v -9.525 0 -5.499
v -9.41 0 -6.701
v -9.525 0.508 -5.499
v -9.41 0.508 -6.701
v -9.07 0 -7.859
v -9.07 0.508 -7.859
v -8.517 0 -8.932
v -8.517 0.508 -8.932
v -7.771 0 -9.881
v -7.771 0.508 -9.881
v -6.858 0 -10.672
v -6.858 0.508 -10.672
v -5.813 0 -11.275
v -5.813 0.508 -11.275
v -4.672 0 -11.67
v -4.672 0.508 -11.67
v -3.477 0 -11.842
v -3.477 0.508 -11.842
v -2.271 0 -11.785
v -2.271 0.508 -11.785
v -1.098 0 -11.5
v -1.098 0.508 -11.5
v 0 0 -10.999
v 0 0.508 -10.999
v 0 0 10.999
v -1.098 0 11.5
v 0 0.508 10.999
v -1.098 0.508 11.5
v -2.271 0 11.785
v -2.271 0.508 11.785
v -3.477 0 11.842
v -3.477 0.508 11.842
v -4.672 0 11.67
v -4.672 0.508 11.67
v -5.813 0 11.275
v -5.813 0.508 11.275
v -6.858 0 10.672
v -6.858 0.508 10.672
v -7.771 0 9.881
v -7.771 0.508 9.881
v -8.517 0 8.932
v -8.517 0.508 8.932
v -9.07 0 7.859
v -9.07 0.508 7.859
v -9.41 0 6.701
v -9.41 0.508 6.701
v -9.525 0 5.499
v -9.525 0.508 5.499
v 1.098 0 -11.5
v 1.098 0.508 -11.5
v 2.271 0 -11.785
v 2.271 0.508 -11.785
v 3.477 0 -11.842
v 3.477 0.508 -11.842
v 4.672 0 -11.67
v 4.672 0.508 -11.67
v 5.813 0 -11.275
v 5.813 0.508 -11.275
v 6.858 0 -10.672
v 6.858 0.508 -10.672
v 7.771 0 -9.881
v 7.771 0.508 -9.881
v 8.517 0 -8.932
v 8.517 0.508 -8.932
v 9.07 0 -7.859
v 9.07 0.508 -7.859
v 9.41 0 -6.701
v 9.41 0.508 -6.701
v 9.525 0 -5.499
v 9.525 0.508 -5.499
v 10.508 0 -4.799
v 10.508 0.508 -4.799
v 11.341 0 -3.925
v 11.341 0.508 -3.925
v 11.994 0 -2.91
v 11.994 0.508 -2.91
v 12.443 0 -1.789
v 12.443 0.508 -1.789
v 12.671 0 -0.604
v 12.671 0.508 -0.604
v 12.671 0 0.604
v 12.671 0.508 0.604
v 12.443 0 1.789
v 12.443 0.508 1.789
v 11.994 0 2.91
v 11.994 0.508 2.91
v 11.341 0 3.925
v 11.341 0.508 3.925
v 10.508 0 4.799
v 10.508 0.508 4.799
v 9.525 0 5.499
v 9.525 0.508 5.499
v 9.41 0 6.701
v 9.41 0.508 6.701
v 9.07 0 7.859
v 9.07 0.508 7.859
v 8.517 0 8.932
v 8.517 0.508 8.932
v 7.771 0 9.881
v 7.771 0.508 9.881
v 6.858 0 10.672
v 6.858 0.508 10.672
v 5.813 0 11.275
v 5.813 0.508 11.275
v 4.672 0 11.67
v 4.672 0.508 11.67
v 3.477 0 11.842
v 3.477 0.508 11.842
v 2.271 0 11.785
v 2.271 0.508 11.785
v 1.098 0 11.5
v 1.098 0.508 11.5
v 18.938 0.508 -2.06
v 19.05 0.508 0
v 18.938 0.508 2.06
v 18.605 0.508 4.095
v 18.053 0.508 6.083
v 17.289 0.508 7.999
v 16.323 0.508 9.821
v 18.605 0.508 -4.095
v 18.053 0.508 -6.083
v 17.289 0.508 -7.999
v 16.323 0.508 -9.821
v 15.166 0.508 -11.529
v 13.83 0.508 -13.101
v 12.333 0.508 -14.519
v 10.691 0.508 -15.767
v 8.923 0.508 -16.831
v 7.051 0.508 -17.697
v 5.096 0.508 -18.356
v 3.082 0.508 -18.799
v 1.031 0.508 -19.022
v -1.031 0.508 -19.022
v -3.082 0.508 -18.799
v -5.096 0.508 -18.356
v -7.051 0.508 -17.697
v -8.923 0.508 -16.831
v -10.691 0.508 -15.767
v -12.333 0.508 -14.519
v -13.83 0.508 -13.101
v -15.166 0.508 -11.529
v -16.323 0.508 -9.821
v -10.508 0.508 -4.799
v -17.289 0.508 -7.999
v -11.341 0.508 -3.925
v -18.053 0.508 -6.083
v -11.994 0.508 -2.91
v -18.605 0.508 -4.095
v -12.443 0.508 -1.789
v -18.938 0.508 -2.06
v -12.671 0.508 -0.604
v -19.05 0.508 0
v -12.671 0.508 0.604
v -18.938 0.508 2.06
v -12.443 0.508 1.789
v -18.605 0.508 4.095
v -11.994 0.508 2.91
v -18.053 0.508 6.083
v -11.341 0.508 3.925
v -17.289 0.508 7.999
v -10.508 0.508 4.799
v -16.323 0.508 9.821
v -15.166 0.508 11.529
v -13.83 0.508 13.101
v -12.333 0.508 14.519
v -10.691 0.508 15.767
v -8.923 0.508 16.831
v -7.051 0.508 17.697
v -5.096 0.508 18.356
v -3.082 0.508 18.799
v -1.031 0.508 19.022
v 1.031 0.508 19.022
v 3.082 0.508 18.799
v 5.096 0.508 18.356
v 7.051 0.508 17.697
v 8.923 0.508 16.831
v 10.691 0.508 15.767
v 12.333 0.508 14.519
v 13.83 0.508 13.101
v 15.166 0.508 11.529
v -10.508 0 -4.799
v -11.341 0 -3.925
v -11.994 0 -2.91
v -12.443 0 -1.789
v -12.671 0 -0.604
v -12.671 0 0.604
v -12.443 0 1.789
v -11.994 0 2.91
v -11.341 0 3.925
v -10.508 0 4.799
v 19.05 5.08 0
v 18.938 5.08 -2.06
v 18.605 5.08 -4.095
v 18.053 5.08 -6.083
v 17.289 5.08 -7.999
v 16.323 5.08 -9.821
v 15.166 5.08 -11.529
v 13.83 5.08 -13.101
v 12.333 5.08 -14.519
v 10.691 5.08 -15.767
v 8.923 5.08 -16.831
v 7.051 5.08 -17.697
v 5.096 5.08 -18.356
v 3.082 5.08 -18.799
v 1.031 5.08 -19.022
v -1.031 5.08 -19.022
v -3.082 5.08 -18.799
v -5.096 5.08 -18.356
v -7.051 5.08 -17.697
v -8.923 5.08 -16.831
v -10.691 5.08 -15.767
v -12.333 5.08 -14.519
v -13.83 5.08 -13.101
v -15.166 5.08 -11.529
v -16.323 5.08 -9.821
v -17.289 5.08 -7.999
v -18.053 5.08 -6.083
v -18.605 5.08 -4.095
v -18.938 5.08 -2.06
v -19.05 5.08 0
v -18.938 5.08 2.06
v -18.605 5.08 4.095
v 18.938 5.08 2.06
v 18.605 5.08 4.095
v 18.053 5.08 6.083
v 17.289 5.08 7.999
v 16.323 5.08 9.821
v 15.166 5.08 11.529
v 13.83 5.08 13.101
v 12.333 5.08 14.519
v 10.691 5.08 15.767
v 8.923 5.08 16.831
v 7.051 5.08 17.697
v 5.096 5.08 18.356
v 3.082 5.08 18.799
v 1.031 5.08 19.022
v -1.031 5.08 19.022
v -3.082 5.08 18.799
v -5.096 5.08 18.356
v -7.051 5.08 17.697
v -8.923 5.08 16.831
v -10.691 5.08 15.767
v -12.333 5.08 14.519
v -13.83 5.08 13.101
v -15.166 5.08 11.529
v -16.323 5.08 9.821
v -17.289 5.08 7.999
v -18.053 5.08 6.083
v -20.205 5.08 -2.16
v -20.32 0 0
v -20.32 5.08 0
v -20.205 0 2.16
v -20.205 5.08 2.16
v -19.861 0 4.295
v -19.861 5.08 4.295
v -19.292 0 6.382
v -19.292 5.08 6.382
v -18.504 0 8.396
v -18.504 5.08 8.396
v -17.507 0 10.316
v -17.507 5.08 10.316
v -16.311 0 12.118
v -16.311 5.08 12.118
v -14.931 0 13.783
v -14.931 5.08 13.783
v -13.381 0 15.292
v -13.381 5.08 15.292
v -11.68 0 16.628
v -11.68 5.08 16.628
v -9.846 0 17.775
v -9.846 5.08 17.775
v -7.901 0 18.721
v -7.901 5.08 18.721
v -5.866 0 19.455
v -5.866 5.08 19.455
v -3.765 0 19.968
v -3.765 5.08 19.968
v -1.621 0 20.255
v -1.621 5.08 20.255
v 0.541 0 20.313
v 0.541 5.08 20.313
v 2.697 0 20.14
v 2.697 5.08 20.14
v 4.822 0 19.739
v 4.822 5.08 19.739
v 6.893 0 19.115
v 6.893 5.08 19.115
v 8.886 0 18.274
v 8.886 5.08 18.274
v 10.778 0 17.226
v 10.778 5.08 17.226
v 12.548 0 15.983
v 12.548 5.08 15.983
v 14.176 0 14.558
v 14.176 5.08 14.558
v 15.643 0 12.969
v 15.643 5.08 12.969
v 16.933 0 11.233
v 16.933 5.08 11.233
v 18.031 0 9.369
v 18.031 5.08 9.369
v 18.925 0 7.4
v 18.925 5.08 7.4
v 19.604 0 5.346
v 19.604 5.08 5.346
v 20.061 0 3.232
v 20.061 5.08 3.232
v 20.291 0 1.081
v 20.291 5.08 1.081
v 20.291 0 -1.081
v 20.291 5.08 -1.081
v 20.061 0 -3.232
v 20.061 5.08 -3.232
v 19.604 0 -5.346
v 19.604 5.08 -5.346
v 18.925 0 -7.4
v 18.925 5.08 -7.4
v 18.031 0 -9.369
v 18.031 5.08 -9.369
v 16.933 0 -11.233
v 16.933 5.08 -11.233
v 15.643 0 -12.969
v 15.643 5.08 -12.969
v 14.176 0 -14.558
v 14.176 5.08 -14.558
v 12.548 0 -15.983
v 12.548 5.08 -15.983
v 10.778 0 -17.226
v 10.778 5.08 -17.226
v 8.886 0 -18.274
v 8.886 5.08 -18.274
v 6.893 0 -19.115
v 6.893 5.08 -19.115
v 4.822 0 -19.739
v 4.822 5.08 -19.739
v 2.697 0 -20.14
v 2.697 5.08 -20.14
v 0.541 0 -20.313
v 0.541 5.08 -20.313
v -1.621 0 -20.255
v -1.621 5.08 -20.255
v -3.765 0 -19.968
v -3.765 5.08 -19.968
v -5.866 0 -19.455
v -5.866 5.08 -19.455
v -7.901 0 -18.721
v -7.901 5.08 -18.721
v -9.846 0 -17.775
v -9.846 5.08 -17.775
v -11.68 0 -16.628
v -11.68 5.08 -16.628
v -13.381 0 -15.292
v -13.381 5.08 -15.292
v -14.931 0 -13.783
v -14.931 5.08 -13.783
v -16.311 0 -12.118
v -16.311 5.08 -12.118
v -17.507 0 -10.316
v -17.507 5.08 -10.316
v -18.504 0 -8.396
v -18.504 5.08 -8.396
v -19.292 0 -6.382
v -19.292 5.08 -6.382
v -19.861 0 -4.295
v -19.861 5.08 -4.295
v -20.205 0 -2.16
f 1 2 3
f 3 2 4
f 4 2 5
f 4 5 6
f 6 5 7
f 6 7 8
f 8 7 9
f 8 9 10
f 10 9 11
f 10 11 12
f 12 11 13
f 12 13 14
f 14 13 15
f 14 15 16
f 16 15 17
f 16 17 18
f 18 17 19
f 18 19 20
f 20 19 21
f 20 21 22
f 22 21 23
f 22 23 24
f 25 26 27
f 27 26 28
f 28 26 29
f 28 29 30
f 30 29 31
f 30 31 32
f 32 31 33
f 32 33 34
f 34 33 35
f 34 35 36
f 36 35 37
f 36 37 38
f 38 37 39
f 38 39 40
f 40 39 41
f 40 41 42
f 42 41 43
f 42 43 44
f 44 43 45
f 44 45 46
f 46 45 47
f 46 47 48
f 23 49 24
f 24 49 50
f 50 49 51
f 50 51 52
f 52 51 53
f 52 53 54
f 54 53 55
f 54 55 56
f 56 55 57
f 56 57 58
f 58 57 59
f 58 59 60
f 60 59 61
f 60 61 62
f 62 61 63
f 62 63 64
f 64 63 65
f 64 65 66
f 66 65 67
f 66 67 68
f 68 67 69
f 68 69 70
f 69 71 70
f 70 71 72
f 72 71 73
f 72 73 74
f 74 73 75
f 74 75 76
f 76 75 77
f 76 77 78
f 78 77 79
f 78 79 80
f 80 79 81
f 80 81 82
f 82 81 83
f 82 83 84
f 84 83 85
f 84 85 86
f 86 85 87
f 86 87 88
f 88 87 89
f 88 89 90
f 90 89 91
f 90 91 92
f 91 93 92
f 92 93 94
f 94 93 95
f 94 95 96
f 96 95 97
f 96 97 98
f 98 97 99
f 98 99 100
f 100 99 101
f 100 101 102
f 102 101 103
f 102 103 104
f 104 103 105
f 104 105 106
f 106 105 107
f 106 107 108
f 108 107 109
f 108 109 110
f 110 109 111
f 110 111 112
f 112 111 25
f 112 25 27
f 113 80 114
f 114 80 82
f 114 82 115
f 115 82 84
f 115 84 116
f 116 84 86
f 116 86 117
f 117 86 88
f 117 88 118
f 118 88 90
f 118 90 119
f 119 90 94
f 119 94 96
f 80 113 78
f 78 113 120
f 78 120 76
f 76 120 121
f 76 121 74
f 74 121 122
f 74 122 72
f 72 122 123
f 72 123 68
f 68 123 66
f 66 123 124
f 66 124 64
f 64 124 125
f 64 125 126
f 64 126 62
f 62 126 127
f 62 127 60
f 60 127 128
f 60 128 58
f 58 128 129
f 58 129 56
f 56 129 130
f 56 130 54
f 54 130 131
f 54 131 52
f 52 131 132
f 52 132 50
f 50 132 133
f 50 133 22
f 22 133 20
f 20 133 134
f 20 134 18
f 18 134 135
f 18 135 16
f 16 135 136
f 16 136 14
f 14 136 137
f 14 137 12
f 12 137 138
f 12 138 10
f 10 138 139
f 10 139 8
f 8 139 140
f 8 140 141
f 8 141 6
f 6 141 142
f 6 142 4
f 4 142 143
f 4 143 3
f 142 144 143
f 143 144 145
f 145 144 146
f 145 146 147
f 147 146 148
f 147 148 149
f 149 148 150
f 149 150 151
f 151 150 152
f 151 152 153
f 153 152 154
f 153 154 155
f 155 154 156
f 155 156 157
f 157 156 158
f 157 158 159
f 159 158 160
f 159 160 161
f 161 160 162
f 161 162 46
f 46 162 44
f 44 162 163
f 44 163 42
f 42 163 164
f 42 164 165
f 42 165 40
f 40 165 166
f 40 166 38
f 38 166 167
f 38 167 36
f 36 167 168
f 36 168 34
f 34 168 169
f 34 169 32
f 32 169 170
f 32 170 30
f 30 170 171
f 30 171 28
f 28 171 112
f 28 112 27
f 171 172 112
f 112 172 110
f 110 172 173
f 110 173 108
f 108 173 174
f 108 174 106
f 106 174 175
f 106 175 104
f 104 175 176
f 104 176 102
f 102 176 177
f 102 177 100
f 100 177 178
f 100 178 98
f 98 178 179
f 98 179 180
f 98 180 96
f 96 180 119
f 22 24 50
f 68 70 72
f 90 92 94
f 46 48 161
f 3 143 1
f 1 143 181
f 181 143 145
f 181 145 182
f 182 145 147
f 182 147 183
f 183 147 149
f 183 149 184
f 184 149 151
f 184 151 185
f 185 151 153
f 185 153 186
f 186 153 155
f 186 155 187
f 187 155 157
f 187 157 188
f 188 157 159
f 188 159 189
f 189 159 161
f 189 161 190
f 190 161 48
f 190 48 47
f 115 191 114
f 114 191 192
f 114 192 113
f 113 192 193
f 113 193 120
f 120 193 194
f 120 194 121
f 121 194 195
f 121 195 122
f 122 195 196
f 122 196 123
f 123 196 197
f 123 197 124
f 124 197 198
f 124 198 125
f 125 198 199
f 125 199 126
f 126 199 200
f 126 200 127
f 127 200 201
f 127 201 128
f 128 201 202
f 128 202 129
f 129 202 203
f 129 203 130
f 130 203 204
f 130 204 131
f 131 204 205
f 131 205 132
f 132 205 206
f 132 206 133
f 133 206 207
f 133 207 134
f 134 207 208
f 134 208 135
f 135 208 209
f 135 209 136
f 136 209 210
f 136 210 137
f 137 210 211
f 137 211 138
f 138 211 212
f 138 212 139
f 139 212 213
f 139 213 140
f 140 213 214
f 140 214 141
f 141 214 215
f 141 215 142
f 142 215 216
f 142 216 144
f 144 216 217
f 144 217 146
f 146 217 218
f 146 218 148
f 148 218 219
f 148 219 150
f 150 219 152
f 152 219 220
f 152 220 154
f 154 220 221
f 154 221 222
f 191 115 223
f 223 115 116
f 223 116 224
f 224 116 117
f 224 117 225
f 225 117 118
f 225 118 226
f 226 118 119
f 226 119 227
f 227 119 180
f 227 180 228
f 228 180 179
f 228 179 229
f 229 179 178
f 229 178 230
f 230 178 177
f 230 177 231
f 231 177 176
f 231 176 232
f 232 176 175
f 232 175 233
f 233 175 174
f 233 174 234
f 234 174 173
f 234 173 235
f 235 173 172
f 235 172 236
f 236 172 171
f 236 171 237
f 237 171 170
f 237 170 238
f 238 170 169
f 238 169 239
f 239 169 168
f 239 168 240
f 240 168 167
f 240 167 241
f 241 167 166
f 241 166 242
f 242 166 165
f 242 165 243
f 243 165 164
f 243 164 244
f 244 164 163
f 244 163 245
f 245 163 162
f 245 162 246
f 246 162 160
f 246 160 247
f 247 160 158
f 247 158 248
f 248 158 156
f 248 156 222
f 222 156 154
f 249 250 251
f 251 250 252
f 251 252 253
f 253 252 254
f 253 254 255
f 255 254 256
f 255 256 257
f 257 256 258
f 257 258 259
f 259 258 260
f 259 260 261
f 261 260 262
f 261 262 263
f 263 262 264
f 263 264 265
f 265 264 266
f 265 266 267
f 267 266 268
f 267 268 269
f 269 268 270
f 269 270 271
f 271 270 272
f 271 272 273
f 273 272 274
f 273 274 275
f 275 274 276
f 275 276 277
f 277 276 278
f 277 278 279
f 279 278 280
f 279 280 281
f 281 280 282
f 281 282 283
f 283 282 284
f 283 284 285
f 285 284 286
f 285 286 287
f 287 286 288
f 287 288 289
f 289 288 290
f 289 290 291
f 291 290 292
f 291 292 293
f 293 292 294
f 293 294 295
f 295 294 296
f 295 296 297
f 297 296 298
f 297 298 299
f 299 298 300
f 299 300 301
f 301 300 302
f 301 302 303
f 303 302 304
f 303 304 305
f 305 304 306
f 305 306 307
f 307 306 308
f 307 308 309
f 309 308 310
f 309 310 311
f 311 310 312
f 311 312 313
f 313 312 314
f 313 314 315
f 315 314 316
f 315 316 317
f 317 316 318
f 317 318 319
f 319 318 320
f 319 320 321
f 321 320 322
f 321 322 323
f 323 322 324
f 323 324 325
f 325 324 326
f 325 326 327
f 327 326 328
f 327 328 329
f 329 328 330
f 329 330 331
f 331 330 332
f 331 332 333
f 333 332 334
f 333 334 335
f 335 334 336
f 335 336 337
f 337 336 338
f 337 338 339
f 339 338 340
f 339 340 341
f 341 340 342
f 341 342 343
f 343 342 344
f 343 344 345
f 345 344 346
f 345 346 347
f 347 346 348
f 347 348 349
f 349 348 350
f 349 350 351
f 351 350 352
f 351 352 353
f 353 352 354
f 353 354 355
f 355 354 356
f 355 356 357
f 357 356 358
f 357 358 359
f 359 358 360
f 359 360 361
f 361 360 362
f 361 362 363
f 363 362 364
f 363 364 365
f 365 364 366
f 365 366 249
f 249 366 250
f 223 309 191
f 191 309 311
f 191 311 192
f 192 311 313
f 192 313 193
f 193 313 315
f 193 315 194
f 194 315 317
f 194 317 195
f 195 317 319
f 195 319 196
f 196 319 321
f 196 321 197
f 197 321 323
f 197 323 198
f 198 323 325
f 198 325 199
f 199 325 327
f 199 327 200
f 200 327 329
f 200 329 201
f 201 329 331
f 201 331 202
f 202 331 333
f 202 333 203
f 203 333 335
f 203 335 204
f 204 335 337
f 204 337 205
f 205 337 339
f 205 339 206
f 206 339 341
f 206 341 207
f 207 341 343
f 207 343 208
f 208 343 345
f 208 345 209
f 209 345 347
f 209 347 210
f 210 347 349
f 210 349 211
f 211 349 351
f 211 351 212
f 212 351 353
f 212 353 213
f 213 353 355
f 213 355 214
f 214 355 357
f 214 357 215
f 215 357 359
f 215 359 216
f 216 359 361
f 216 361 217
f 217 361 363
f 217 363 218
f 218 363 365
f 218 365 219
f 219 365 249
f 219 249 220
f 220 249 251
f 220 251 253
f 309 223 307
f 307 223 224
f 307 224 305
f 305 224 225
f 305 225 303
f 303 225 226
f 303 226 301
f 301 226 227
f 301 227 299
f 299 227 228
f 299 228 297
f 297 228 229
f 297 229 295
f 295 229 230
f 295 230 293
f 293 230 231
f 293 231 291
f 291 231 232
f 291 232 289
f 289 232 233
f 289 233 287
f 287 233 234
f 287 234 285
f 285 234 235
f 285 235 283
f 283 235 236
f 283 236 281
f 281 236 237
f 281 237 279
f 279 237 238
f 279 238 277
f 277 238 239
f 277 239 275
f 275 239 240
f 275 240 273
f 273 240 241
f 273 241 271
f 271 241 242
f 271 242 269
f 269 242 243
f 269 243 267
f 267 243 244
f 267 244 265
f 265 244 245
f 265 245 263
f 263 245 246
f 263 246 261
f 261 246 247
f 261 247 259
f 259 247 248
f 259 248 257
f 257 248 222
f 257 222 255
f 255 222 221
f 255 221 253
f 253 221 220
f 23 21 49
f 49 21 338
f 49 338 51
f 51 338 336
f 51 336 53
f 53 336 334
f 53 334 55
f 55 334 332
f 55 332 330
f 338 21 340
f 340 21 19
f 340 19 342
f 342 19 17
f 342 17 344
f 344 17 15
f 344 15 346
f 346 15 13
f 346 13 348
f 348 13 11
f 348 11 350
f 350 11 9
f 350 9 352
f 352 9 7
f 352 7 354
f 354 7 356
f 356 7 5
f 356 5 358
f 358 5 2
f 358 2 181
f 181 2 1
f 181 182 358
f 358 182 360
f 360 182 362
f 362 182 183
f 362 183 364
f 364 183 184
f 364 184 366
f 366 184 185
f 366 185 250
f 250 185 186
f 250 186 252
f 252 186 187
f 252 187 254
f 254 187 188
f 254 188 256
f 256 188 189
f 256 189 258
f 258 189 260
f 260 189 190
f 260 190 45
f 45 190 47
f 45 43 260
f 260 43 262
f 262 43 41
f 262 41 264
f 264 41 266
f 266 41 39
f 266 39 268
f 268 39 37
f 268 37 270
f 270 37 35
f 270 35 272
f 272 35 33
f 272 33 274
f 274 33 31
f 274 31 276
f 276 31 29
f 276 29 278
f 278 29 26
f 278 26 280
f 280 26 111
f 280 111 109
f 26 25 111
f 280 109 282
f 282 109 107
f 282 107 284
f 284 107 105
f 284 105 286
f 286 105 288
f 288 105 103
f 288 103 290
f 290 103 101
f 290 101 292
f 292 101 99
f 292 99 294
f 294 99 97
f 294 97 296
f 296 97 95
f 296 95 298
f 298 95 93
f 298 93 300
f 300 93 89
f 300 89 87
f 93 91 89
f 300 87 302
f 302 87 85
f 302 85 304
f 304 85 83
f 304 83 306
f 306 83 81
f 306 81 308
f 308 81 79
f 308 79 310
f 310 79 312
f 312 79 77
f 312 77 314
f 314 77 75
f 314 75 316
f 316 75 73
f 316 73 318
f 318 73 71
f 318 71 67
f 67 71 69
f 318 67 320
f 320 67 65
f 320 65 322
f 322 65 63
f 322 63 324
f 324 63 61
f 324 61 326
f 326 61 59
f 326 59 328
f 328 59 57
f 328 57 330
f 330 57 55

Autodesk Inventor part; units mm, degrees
ref_plane "YZ Plane" through (0, 0, 0) normal (1, 0, 0) x (0, 1, 0)
ref_plane "XZ Plane" through (0, 0, 0) normal (0, 1, 0) x (-1, 0, 0)
ref_plane "XY Plane" through (0, 0, 0) normal (0, 0, 1) x (1, 0, 0)
sketch "Sketch1" plane through (0, 0, 0) normal (0, 1, 0) x (-1, 0, 0)
  circle A0 centre (0, 0) radius 20.32
  dimension "d0" = 40.64
extrude "Extrusion1" add sketch "Sketch1" along normal blind 5.08
sketch "Sketch2" plane through (0, 5.08, 0) normal (0, 1, 0) x (1, 0, 0)
  circle A0 centre (0, 0) radius 19.05
  dimension "d3" = 38.1
extrude "Extrusion2" cut sketch "Sketch2" against normal blind 4.572
sketch "Sketch3" plane through (0, 0.508, 0) normal (0, 1, 0) x (1, 0, 0)
  line L0 (0, 0) -> (-6.35, 0)
  circle A0 centre (-6.35, 0) radius 6.35
  dimension "d6" = 6.35
extrude "Extrusion3" cut sketch "Sketch3" against normal blind 4.572
pattern_circular "Circular Pattern1" count 6 over 360 about axis through (0, 0.508, 0) along (0, 1, 0) of "Extrusion3"
sketch "Sketch4" plane through (0, 0.508, 0) normal (0, 1, 0) x (1, 0, 0)
  line L0 (0, 0) -> (-6.35, 0)
  dimension "d14" = 6.35
properties part number "Motor Mount Test"
